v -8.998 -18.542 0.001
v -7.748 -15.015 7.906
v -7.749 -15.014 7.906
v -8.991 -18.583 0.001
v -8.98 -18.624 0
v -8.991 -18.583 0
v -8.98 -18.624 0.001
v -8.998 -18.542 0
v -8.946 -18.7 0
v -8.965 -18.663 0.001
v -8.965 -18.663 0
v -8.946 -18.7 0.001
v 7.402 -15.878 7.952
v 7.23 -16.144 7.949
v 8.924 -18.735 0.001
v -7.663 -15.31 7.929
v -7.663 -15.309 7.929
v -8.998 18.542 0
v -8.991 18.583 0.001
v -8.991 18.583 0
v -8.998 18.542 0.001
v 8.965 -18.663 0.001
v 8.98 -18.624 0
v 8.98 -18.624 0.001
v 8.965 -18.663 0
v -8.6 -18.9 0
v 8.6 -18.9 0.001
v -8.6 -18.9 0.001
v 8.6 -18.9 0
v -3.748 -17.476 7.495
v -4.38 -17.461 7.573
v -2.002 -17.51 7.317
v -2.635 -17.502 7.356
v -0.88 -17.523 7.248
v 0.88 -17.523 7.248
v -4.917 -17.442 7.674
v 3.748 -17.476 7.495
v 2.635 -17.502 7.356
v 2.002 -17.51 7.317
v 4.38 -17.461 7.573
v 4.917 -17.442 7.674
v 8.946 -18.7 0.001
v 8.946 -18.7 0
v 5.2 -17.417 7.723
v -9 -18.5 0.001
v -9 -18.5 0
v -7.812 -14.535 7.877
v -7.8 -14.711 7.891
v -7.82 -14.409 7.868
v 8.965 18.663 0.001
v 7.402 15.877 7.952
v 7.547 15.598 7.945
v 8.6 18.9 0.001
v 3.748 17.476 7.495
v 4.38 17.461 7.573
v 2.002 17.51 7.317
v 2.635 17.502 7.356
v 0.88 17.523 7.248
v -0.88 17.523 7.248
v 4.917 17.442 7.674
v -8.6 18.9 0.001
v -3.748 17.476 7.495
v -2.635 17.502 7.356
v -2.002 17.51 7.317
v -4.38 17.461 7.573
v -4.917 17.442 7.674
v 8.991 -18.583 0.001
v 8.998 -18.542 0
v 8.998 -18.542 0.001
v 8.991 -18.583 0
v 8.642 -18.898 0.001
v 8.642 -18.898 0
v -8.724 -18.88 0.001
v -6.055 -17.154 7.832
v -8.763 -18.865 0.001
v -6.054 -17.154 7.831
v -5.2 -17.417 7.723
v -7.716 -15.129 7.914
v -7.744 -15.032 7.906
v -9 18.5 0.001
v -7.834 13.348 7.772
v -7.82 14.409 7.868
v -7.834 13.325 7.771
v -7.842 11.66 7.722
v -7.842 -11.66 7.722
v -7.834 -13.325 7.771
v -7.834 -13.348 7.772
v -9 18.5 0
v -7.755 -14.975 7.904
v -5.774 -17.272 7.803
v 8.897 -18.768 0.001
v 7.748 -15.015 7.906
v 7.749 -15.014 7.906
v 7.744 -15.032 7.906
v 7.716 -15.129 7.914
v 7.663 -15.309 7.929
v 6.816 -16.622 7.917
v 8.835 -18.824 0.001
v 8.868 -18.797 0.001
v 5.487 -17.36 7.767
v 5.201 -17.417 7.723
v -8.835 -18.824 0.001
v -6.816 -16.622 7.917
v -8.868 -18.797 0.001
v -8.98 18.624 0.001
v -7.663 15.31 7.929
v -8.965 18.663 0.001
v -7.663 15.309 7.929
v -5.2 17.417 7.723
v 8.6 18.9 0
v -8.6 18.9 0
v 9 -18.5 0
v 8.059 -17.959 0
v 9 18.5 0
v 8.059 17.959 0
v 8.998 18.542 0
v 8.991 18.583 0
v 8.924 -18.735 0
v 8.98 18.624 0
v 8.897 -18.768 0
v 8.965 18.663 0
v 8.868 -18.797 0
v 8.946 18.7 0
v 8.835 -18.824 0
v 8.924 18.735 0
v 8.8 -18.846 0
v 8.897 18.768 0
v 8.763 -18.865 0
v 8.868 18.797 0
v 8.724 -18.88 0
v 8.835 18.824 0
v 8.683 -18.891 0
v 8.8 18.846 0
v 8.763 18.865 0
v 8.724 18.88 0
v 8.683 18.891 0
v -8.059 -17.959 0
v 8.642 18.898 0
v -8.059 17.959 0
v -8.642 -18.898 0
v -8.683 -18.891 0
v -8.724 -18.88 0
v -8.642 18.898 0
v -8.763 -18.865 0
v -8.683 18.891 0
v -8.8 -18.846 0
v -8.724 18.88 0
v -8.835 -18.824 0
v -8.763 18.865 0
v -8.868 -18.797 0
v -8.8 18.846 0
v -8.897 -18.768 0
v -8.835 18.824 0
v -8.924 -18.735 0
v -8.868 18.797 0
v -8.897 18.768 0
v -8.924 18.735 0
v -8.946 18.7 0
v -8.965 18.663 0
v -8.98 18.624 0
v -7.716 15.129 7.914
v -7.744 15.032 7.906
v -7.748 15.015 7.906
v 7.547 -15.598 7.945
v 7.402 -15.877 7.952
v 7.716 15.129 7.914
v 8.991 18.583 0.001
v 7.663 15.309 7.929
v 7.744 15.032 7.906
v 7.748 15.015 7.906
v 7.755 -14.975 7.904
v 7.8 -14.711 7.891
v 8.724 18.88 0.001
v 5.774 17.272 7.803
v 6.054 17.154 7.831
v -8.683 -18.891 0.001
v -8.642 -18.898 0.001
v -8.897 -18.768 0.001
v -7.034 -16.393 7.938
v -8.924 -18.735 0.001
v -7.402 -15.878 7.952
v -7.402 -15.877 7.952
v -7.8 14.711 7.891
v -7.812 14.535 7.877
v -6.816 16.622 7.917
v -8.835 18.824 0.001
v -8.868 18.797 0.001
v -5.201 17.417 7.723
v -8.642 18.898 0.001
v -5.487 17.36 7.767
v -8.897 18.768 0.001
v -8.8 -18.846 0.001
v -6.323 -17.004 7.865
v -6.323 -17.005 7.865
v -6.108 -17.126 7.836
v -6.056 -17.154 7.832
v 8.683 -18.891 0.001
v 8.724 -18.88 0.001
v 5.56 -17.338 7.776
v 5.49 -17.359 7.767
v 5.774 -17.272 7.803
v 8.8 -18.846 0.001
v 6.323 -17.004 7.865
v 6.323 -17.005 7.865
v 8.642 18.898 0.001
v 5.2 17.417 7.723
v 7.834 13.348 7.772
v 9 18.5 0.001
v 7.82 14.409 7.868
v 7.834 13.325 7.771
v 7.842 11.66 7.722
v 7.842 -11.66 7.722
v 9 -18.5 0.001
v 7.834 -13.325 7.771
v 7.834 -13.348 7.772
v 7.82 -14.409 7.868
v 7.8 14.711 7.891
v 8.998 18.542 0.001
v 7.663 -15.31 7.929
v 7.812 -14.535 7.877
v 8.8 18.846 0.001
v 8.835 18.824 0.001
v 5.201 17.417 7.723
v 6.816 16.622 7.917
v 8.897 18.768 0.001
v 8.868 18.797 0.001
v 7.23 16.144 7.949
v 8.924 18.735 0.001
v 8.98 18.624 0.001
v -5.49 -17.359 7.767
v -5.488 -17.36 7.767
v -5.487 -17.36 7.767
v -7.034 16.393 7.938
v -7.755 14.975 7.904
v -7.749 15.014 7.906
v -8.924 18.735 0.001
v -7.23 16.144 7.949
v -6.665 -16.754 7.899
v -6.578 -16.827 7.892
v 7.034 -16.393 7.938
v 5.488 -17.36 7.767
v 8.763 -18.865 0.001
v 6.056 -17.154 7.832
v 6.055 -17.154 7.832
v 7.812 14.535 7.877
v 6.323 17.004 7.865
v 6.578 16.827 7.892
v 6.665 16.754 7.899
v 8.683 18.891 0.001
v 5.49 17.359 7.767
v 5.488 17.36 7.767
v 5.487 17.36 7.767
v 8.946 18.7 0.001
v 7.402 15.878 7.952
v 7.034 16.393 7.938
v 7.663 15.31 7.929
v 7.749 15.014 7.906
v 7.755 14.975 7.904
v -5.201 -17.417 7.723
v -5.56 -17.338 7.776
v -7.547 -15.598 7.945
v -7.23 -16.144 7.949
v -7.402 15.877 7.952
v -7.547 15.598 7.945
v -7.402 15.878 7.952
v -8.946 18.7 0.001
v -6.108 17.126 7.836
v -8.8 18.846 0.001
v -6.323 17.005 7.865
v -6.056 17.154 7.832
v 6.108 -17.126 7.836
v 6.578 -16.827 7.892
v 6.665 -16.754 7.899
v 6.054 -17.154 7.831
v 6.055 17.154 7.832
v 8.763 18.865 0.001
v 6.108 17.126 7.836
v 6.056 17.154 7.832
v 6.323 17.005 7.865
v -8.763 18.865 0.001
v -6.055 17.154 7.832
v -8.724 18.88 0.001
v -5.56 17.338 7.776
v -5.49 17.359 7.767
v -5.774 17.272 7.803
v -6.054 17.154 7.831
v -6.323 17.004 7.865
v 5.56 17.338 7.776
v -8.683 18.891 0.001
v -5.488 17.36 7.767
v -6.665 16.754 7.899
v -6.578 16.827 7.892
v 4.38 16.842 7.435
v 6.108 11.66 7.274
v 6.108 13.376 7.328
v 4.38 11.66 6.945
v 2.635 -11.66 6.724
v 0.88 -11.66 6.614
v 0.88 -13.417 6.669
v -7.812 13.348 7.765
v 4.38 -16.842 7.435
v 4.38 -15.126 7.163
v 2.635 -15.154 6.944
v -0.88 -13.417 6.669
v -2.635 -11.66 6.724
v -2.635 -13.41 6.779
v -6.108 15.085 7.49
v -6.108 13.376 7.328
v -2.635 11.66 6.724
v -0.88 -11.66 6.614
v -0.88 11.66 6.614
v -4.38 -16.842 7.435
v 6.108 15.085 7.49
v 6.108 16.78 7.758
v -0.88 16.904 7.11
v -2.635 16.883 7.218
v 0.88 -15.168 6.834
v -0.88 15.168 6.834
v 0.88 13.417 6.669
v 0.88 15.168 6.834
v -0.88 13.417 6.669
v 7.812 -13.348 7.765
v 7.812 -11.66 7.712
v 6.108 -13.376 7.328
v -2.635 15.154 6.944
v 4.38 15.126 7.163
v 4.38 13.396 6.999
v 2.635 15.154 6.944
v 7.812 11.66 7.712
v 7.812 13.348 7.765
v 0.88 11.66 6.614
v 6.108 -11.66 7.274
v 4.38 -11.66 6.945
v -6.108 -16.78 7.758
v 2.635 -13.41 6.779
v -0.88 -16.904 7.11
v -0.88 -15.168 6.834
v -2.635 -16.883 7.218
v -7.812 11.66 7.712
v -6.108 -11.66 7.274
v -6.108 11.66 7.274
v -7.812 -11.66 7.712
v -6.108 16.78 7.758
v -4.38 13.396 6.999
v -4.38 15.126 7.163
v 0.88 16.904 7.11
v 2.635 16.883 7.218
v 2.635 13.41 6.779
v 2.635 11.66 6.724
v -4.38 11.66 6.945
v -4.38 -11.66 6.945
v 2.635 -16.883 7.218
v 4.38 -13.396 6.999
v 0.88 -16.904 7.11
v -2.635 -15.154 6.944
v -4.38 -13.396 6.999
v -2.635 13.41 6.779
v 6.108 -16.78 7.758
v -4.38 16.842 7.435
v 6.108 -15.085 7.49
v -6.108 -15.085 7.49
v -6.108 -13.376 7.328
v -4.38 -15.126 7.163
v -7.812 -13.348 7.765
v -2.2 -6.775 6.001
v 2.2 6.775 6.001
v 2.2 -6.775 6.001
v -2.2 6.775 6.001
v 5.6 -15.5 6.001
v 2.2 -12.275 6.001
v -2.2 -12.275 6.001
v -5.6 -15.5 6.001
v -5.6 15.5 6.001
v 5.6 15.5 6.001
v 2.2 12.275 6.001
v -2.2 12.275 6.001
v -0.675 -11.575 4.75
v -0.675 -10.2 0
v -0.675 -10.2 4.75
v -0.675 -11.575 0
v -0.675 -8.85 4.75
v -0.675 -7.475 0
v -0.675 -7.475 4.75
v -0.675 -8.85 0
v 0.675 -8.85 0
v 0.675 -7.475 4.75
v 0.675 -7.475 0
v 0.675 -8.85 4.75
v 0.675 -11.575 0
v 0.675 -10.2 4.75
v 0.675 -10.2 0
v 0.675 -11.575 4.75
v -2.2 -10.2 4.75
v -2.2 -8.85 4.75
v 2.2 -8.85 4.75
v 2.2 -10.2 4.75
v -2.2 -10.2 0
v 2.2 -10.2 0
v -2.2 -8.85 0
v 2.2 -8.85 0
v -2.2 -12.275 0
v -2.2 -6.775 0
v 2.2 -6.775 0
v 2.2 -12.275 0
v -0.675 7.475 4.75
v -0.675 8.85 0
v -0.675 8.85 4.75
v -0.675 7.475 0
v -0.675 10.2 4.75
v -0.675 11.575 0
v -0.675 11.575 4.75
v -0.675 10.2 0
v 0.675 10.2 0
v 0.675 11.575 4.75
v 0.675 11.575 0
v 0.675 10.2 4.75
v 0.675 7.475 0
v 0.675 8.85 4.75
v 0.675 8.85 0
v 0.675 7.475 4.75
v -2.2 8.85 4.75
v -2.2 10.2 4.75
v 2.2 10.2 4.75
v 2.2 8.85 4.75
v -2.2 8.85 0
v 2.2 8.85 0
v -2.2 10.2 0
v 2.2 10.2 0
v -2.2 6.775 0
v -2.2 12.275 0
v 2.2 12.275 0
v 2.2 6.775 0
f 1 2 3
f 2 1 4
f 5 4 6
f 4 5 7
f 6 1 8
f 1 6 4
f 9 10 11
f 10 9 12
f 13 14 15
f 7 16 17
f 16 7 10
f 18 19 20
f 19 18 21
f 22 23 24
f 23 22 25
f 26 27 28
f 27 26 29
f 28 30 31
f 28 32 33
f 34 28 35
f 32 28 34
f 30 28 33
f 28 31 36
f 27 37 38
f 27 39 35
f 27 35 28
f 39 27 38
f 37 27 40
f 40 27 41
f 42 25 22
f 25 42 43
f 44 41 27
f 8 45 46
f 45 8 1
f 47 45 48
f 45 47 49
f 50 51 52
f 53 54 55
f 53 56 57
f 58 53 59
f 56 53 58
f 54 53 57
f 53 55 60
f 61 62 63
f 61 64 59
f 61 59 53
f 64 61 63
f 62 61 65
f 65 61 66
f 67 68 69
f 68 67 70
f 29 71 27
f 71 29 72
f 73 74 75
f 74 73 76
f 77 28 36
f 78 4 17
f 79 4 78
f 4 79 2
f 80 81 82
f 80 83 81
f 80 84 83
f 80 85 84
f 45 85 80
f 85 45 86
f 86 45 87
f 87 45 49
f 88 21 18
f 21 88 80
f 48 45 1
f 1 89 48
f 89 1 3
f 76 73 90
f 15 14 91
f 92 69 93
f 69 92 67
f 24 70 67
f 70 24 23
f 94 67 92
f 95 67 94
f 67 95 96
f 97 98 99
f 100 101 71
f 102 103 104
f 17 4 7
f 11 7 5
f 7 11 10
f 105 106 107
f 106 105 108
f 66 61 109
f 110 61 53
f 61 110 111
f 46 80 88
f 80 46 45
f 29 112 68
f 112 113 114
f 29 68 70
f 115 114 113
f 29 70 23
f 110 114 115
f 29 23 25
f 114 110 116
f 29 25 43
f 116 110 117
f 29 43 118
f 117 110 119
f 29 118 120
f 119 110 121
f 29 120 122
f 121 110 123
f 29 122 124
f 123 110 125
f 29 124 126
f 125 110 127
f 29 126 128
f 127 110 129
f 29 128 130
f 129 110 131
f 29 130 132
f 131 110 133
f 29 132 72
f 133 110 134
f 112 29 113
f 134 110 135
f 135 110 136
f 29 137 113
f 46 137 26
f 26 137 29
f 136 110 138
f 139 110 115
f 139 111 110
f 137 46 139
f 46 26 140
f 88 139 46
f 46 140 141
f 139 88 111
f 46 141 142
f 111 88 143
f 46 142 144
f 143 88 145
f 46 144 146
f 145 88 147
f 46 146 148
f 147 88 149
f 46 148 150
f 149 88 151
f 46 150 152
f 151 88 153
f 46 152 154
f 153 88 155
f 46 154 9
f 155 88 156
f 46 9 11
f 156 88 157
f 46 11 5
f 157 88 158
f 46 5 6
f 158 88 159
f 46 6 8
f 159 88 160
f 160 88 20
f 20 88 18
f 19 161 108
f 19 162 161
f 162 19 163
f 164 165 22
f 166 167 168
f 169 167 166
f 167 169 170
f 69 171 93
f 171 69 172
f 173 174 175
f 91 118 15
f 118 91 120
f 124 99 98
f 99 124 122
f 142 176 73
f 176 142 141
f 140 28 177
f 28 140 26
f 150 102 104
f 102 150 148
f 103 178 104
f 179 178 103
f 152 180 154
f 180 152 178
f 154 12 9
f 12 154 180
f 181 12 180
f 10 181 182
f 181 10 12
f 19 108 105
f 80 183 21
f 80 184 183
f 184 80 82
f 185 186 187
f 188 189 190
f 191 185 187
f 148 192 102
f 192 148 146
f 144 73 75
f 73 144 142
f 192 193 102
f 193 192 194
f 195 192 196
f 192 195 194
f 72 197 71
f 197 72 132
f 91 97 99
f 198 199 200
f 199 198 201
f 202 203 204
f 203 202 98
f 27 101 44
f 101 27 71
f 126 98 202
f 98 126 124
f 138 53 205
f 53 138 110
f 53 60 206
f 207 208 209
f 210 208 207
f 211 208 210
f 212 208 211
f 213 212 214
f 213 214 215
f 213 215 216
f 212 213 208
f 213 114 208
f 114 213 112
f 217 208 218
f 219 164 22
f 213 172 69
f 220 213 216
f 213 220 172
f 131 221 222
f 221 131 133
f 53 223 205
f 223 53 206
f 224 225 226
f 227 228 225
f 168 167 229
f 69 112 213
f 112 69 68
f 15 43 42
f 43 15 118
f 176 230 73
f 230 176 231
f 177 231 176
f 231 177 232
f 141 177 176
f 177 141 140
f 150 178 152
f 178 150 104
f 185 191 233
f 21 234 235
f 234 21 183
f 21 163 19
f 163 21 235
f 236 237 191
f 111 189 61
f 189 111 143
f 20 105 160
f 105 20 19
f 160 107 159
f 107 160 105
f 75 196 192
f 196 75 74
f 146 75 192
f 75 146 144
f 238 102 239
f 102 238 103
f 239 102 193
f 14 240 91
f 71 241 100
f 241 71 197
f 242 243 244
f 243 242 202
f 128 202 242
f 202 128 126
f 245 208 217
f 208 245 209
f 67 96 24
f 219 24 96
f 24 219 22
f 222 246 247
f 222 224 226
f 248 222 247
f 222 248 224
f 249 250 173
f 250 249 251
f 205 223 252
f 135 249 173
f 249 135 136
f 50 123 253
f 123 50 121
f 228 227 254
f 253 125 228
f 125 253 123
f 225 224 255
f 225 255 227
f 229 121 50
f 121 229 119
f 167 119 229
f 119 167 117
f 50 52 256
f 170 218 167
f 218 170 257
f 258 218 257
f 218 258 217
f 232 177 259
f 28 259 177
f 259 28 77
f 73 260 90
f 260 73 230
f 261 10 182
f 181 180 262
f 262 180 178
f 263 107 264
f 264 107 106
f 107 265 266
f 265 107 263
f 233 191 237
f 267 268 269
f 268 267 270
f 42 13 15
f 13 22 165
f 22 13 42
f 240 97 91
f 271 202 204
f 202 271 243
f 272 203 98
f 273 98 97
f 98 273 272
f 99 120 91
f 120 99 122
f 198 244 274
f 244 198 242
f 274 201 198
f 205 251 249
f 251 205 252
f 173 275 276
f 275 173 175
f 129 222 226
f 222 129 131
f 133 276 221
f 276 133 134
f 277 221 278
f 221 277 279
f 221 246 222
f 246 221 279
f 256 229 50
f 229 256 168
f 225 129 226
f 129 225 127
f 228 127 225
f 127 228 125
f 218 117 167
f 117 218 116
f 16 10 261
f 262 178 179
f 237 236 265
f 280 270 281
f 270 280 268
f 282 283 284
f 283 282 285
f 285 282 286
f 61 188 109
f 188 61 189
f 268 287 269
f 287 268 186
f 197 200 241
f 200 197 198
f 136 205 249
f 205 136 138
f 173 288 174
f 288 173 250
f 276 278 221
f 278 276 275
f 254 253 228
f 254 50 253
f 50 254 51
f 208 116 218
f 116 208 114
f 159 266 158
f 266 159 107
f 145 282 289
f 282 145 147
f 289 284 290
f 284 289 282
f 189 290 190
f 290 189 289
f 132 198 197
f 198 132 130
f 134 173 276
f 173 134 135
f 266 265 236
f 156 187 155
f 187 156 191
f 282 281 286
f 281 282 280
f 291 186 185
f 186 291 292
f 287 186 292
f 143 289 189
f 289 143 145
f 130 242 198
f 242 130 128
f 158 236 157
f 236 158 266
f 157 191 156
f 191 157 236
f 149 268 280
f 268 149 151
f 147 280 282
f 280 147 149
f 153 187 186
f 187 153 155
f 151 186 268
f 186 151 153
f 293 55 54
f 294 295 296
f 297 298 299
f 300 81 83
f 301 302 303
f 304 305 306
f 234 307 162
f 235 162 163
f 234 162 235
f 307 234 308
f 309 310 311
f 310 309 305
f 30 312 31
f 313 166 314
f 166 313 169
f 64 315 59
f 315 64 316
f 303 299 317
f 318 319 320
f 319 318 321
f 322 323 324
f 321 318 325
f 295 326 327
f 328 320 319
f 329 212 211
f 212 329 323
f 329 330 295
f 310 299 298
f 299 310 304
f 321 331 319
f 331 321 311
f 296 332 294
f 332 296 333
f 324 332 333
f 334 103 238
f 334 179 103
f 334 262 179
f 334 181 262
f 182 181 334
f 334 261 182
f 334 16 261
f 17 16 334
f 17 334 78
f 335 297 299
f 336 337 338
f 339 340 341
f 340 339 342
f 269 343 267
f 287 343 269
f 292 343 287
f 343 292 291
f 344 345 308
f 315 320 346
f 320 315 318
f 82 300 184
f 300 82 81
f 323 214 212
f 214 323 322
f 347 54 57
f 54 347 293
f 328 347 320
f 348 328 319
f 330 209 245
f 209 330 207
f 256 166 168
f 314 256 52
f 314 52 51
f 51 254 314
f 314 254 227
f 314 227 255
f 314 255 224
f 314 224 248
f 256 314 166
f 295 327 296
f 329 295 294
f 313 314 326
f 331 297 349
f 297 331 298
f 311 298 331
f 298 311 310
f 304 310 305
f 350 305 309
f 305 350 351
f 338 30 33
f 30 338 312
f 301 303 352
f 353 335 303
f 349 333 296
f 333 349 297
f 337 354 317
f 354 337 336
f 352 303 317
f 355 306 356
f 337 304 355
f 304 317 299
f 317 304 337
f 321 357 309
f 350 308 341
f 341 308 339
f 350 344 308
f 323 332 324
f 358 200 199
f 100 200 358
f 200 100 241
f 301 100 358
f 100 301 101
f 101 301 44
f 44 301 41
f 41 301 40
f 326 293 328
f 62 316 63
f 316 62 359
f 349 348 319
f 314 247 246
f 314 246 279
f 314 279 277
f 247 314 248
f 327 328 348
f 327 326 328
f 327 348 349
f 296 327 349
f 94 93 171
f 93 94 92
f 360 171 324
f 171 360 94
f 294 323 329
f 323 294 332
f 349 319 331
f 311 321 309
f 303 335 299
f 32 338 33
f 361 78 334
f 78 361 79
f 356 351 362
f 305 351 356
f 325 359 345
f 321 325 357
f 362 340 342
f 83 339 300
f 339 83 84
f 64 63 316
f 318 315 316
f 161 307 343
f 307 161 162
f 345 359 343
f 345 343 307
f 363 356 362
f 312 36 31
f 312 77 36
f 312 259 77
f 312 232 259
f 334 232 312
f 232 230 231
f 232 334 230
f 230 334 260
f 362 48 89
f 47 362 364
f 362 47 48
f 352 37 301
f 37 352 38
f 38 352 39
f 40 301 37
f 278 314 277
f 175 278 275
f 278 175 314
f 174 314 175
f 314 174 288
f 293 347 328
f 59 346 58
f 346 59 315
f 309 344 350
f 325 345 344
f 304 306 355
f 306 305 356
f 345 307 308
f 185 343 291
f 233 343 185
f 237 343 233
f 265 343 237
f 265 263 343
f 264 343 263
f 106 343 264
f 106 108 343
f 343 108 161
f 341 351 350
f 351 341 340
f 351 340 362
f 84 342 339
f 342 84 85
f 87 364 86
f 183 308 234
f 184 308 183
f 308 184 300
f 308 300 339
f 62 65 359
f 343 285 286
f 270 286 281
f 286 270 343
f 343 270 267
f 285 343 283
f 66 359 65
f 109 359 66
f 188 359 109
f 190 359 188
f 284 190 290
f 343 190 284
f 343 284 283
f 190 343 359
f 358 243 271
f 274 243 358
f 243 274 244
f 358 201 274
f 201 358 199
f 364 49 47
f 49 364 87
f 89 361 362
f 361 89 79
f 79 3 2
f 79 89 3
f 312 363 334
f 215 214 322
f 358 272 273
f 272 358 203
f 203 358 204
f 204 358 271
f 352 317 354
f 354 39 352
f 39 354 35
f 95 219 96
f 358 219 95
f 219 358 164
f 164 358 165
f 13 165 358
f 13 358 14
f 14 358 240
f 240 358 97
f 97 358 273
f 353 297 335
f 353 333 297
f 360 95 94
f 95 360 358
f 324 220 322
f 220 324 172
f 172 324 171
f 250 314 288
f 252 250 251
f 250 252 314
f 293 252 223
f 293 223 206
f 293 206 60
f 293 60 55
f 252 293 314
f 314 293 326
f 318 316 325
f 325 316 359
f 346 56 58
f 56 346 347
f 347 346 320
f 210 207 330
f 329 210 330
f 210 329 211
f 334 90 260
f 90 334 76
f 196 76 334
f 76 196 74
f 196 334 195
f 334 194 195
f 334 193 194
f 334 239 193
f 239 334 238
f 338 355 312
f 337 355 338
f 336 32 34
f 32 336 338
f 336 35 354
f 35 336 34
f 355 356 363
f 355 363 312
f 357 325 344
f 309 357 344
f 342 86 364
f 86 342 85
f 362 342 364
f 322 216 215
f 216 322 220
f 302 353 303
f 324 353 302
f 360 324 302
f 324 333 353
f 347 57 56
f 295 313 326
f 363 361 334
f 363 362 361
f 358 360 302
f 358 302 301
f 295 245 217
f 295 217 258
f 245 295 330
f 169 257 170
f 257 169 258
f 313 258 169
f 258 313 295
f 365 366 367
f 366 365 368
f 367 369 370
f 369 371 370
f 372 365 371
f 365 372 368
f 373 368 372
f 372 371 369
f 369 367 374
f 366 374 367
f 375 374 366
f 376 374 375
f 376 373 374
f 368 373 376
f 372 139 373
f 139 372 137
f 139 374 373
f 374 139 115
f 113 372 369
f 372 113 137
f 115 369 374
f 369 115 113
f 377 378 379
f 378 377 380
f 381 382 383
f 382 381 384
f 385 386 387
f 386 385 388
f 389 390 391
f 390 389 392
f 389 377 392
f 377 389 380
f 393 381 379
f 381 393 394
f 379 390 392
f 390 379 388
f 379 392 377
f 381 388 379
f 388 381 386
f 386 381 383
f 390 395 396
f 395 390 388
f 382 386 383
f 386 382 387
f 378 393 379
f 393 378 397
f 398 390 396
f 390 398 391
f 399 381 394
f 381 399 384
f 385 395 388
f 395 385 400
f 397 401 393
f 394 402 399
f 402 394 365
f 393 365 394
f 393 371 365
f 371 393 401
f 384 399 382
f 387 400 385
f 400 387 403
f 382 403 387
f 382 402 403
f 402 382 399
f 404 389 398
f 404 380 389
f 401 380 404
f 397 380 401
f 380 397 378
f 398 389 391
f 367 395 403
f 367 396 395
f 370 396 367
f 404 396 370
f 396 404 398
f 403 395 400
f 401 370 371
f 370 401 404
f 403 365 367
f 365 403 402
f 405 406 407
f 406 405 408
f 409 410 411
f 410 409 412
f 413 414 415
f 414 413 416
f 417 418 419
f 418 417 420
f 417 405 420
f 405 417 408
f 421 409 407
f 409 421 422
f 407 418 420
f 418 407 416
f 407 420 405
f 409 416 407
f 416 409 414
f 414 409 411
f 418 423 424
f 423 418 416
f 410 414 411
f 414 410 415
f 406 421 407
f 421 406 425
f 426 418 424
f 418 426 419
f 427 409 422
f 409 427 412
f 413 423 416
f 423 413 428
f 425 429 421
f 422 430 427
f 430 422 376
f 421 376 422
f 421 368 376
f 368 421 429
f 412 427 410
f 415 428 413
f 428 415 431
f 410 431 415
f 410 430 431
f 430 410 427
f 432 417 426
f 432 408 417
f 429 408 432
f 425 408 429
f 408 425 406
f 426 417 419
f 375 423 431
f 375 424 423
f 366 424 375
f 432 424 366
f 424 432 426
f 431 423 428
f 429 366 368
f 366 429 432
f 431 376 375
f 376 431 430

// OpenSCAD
lengthmultipl       = 2.1;
xdim                = 18;
ydim                = xdim*lengthmultipl;
xdimupper           = xdim-2.4;
ydimupper           = xdimupper*lengthmultipl;
lowercorner         = 0.4;
highercorner        = 3.04;
upperedgeradius     = 30;
sphericalindentation= 28;
roundingverticaledges = 19;
roundessxtrans      = 5;
roundessytrans      = roundessxtrans;
roundessztrans      = -4;
keystemheight       = 6;
distanceapartofkeystem = 14.00+5.05;
shorteningofspheresep = 5.5;
upperbaseyextension = 1;

module keystem() {
    totalheight=keystemheight+0.1;
    depthofcross=4.5;
    translationofcross = totalheight-0.5*depthofcross;

    widthstem = 4.40;
    lengthstem = 5.50;

    rotate([180,0,0]) translate([0,0,-totalheight]) 
    difference(){ //stemofkeycap
        
        //cylinder(h=totalheight,r=5.54/2,$fn=36);
        translate([-widthstem/2,-lengthstem/2,0]) cube([widthstem,lengthstem,totalheight]);
        union(){
            translate([0,0,translationofcross]) cube([1.35,4.10,depthofcross+0.5], center=true);
            translate([0,0,translationofcross]) rotate([0,0,90]) cube([1.35,5,depthofcross+0.5], center=true);
        }
}};




difference() { //make hollow    
    intersection() {
        *intersection_for(b = [0:90:359]) {
            rotate([0,0,b-45]) translate([roundessxtrans,roundessytrans,roundessztrans]) sphere(r= roundingverticaledges,$fn=60);
        };

difference() {//spherical indentation

    hull() {
        
        linear_extrude(height=0.001) hull() { //lower base
        square([xdim-lowercorner,ydim-lowercorner],center=true);

        translate([xdim/2-lowercorner,ydim/2-lowercorner,0]) circle(r=lowercorner, $fn=60);
        translate([-(xdim/2-lowercorner),ydim/2-lowercorner,0]) circle(r=lowercorner, $fn=60);
        translate([xdim/2-lowercorner,-(ydim/2-lowercorner),0]) circle(r=lowercorner, $fn=60);
        translate([-(xdim/2-lowercorner),-(ydim/2-lowercorner),0]) circle(r=lowercorner, $fn=60);
        };

         translate([0,0,8]) linear_extrude(height=0.001) hull() { //upper base
            //square([xdimupper-highercorner,ydimupper-highercorner],center=true);
             
             *intersection_for(n=[0:90:359]) {
                 rotate([0,0,n]) translate([upperedgeradius-xdimupper/2 + 0.3,0,0]) circle(r=upperedgeradius,$fn=800);
             };

            translate([xdimupper/2-highercorner,ydimupper/2-highercorner+upperbaseyextension,0]) circle(r=highercorner, $fn=60);
            translate([-(xdimupper/2-highercorner),ydimupper/2-highercorner+upperbaseyextension,0]) circle(r=highercorner, $fn=60);
            translate([xdimupper/2-highercorner,-(ydimupper/2-highercorner+ upperbaseyextension),0]) circle(r=highercorner, $fn=60);
            translate([-(xdimupper/2-highercorner),-(ydimupper/2-highercorner+ upperbaseyextension),0]) circle(r=highercorner, $fn=60);
        };
    };
    hull() {
        translate([0,(ydimupper-xdimupper)-shorteningofspheresep,sphericalindentation+ 8 - 0.9    -   0.5]) rotate([0,90,0]) sphere(r=sphericalindentation,$fn=100);
        translate([0,-(ydimupper-xdimupper)+shorteningofspheresep,sphericalindentation+ 8 - 0.9    -   0.5]) rotate([0,90,0]) sphere(r=sphericalindentation,$fn=100);
    }
};
};





hull(){
  translate([0,0,-0.1]) linear_extrude(height = 0.001) square([xdim-1.8,ydim-1.8],true);
  translate([0,0,keystemheight]) linear_extrude(height = 0.001) square([xdim-1.8-5,ydim-1.8-5],true);
};


};

translate([0,-distanceapartofkeystem/2,0]) keystem();
translate([0,+distanceapartofkeystem/2,0]) keystem();
